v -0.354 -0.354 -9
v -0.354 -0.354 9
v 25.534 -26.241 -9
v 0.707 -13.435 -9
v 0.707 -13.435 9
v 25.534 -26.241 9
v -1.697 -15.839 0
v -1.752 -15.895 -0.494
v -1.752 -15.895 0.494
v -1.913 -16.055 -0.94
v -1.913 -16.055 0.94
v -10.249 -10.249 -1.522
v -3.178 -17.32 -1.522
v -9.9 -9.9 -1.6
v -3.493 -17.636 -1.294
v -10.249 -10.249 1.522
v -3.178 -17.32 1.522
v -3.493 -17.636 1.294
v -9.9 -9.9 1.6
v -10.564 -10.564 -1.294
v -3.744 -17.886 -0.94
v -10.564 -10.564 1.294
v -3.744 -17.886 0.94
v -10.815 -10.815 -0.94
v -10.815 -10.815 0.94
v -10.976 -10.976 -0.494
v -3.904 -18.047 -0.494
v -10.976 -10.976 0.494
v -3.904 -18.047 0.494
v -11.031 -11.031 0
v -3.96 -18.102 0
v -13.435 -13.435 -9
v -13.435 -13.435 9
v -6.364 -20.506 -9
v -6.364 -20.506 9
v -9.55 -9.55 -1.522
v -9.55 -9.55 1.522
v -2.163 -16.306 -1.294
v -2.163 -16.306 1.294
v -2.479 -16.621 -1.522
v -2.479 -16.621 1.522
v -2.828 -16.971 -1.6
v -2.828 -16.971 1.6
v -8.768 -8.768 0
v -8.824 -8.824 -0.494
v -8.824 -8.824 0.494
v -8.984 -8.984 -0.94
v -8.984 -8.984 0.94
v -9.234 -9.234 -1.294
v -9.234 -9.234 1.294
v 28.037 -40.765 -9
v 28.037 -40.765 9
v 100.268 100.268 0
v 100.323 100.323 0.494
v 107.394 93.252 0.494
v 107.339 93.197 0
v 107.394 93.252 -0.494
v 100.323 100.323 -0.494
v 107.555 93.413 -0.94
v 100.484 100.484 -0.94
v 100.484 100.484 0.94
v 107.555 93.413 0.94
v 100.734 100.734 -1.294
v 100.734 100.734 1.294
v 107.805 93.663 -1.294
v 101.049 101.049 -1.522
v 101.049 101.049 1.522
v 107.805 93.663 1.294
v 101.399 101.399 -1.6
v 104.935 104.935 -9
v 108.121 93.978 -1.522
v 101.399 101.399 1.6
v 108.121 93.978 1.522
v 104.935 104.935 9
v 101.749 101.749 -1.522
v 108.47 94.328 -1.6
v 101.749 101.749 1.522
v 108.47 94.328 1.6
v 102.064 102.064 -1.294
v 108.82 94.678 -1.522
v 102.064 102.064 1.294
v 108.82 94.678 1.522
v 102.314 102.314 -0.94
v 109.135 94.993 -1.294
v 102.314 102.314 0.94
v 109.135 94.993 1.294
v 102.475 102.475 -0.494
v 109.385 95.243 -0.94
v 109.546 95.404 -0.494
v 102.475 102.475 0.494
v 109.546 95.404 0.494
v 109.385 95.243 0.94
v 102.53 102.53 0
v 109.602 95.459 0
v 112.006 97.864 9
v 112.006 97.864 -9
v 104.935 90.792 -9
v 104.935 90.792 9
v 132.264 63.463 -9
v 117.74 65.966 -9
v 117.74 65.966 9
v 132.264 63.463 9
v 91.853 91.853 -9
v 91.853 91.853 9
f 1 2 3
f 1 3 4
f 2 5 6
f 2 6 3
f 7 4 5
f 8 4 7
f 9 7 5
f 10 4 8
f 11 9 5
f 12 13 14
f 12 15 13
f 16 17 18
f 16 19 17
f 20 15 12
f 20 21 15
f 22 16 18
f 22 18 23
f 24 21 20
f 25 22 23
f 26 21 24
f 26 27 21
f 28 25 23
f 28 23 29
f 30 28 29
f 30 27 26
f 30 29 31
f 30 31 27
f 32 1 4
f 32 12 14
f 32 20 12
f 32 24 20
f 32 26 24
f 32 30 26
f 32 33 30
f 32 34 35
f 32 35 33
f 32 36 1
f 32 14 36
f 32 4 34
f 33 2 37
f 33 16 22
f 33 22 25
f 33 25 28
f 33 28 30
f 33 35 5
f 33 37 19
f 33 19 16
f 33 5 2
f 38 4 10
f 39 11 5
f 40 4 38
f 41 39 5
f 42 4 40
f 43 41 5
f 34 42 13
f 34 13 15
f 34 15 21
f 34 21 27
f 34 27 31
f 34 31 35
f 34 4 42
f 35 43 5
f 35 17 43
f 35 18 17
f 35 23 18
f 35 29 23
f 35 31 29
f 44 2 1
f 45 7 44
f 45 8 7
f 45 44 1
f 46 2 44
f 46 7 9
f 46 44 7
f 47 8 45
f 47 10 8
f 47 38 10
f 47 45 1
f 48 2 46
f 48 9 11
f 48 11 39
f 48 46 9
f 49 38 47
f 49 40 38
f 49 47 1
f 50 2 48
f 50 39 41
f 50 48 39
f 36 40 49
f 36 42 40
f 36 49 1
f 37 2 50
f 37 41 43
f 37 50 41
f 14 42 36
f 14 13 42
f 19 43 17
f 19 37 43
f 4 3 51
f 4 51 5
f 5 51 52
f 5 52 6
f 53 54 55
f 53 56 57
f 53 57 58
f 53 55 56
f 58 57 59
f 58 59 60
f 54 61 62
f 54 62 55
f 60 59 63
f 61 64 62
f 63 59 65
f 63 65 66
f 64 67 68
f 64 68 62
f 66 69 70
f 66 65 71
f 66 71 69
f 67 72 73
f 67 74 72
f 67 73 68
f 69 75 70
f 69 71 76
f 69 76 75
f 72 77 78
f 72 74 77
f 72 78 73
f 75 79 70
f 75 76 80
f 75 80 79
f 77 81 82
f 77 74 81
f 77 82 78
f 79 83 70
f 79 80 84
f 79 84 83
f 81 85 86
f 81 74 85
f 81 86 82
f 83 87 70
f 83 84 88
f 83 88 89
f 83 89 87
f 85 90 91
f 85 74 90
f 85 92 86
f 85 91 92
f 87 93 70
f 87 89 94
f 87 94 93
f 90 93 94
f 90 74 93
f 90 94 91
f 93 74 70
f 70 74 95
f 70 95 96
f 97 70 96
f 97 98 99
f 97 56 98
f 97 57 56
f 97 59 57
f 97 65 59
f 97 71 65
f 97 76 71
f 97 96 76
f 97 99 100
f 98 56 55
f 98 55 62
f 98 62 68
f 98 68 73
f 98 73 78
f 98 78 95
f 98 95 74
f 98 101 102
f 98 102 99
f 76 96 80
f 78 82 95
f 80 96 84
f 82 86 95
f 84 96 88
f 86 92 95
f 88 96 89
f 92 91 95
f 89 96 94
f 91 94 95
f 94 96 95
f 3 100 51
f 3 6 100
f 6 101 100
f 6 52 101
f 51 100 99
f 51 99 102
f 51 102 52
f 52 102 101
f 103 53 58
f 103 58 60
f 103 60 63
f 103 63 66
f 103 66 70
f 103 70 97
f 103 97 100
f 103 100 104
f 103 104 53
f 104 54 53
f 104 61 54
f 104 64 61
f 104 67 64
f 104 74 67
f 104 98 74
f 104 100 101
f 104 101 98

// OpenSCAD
// file: ../lib/naca4.scad
// Naca4.scad - library for parametric airfoils of 4 digit NACA series
// Code: Rudolf Huttary, Berlin 
// June 2015
// commercial use prohibited


// general use: for more examples refer to sampler.scad
// naca = naca digits or 3el vector  (default = 12 or [0, 0, .12])
// L    = chord length [mm]      (default= 100)
// N    = # sample points        (default= 81)
// h    = height [mm]            (default= 1)
// open = close at the thin end? (default = true)
// two equivalent example calls
 airfoil(naca = 2408, L = 60, N=1001, h = 30, open = false); 
// airfoil(naca = [.2, .4, .32], L = 60, N=1001, h = 30, open = false); 

module help()
{
  echo(str("\n\nList of signatures in lib:\n=================\n", 
  "module airfoil(naca=2412, L = 100, N = 81, h = 1, open = false) - renders airfoil object\n", 
  "module airfoil(naca=[.2, .4, .12], L = 100, N = 81, h = 1, open = false) - renders airfoil object using percentage for camber,  camber distance and thicknes\n", 
  "function airfoil_data(naca=12, L = 100, N = 81, open = false)\n",
  "=================\n")); 
}

help(); 
// this is the object
module airfoil(naca=12, L = 100, N = 81, h = 1, open = false)
{
  linear_extrude(height = h)
  polygon(points = airfoil_data(naca, L, N, open)); 
}

module hollow_airfoil(lnaca=12, L = 100, N = 81, h = 1, open = false, wall_thickness = 1)
{
    if (open){
        linear_extrude(height = h)

        if (wall_thickness>0){
            difference(){
                polygon(points = airfoil_data(naca, L, N, false));
                offset(delta = - wall_thickness, chamfer = false) polygon(points = airfoil_data(naca, L, N, open = false));
            }
        }
        else{
            difference(){
                offset(delta = - wall_thickness, chamfer = false) polygon(points = airfoil_data(naca, L, N, open = false));
                polygon(points = airfoil_data(naca, L, N, false));
            }
        }
    }
    else{

        linear_extrude(height = abs(wall_thickness))
            polygon(points = airfoil_data(naca, L, N, false)); 

        linear_extrude(height = h)
            difference(){
                polygon(points = airfoil_data(naca, L, N, open));
                offset(delta = - wall_thickness) polygon(points = airfoil_data(naca, L, N, open = false));
            }

        translate([0,0, h - wall_thickness])
            linear_extrude(height = abs(wall_thickness))
                polygon(points = airfoil_data(naca, L, N, false)); 

    }
}


// this is the main function providing the airfoil data
function airfoil_data(naca=12, L = 100, N = 81, open = false) = 
  let(Na = len(naca)!=3?NACA(naca):naca)
  let(A = [.2969, -0.126, -.3516, .2843, open?-0.1015:-0.1036])
  [for (b=[-180:360/(N):179.99]) 
    let (x = (1-cos(b))/2)  
    let(yt = sign(b)*Na[2]/.2*(A*[sqrt(x), x, x*x, x*x*x, x*x*x*x])) 
    Na[0]==0?L*[x, yt]:L*camber(x, yt, Na[0], Na[1], sign(b))];  


function trailing_edge_angle(naca=12, open = false) = 
  let(Na = len(naca)!=3?NACA(naca):naca)
  let(A = [.2969, -0.126, -.3516, .2843, open?-0.1015:-0.1036])
  let (x =0.999)  // set x near to airfoil trailing edge
  let(yt = Na[2]/.2*(A*[sqrt(x), x, x*x, x*x*x, x*x*x*x])) // calculate distance from x-axis at previously set position
  atan2(yt,1-x);  // calculate angle of triangle between end of airfoil. The triange height corresponds to previously calculated distance from x-axis

function surface_angle(x = 0.5, naca=12, open = false) = 
  let(Na = len(naca)!=3?NACA(naca):naca)
  let(A = [0.2969, -0.126, -0.3516, 0.2843, open?-0.1015:-0.1036])
  let(dy = Na[2]/0.2*(A*[(1/2)*(1/sqrt(x)), 1, 2*x, 3*x*x, 4*x*x*x])) // calculate derivative of airfoil function at the x point
  atan(dy);  // calculate  the angle from function derivative

function surface_distance(x = 0.5, naca=12, open = false) = 
  let(Na = len(naca)!=3?NACA(naca):naca)
  let(A = [0.2969, -0.126, -0.3516, 0.2843, open?-0.1015:-0.1036])
  Na[2]/.2*(A*[sqrt(x), x, x*x, x*x*x, x*x*x*x]); // calculate distance from x-axis at previously set position

// helper functions
function NACA(naca) = 
  let (M = floor(naca/1000))
  let (P = floor((naca-M*1000)/100)) 
  [M/100, P/10, floor(naca-M*1000-P*100)/100];  

function camber(x, y, M, P, upper) = 
  let(yc = (x<P)?M/P/P*(2*P*x-x*x): M/(1-P)/(1-P)*(1 - 2*P + 2*P*x -x*x))
  let(dy = (x<P)?2*M/P/P*(P-x):2*M/(1-P)/(1-P)*(P-x))
  let(th = atan(dy))
  [upper ? x - y*sin(th):x + y*sin(th), upper ? yc + y*cos(th):yc - y*cos(th)];
// file: ../888_1001.scad
module 888_1001(draft){


    width =width_of_accumulator + accumulator_holder_width;
    depth = accumulator_holder_width;
    height = height_of_accumulator - sink_of_accumulator + accumulator_holder_thickness;

    width_cube = accumulator_holder_thickness; 	//šířka kostky ve které je otvor na šroub
    depth_cube = accumulator_holder_width;
    height_cube = accumulator_holder_thickness;	//výška kostky ve které je otvor na šroub


    union(){

    	difference (){
    		translate([-(accumulator_holder_width/2),- accumulator_holder_width/2,0])
    			cube ([width,depth,height]);
    		translate([- global_clearance,height_of_accumulator/2 + global_clearance,-2 - sink_of_accumulator - depth_of_accumulator])
    			rotate([90,0,0])
    				cube([width_of_accumulator + global_clearance*2, depth_of_accumulator+3 + depth_of_accumulator, height_of_accumulator+1]);
     	}

    	difference(){
    		translate([-accumulator_holder_thickness - accumulator_holder_width/2,-accumulator_holder_width/2,0])
    			cube([accumulator_holder_thickness, accumulator_holder_width, accumulator_holder_thickness]);
    	//šroub
    		translate([- accumulator_holder_width/2 - accumulator_holder_thickness/2,0,-10])
    			cylinder(h = 30, r = M3_screw_diameter/2, $fn = 20);
    	}

    	difference(){
    		translate([width_of_accumulator + accumulator_holder_width/2,-accumulator_holder_width/2,0])
    			cube([accumulator_holder_thickness, accumulator_holder_width, accumulator_holder_thickness]);
    	//šroub
    		translate([width_of_accumulator + accumulator_holder_width/2 + accumulator_holder_thickness/2,0,-10])
    			cylinder(h = 30, r = M3_screw_diameter/2, $fn = 20);
    	}
    //final union
    }
//final module
}


888_1001();

use <./lib/naca4.scad>
include <../parameters.scad>
// main file
include <../../parameters.scad>

use <../888_1001.scad>

    rotate([90,0,45])
        888_1001();
